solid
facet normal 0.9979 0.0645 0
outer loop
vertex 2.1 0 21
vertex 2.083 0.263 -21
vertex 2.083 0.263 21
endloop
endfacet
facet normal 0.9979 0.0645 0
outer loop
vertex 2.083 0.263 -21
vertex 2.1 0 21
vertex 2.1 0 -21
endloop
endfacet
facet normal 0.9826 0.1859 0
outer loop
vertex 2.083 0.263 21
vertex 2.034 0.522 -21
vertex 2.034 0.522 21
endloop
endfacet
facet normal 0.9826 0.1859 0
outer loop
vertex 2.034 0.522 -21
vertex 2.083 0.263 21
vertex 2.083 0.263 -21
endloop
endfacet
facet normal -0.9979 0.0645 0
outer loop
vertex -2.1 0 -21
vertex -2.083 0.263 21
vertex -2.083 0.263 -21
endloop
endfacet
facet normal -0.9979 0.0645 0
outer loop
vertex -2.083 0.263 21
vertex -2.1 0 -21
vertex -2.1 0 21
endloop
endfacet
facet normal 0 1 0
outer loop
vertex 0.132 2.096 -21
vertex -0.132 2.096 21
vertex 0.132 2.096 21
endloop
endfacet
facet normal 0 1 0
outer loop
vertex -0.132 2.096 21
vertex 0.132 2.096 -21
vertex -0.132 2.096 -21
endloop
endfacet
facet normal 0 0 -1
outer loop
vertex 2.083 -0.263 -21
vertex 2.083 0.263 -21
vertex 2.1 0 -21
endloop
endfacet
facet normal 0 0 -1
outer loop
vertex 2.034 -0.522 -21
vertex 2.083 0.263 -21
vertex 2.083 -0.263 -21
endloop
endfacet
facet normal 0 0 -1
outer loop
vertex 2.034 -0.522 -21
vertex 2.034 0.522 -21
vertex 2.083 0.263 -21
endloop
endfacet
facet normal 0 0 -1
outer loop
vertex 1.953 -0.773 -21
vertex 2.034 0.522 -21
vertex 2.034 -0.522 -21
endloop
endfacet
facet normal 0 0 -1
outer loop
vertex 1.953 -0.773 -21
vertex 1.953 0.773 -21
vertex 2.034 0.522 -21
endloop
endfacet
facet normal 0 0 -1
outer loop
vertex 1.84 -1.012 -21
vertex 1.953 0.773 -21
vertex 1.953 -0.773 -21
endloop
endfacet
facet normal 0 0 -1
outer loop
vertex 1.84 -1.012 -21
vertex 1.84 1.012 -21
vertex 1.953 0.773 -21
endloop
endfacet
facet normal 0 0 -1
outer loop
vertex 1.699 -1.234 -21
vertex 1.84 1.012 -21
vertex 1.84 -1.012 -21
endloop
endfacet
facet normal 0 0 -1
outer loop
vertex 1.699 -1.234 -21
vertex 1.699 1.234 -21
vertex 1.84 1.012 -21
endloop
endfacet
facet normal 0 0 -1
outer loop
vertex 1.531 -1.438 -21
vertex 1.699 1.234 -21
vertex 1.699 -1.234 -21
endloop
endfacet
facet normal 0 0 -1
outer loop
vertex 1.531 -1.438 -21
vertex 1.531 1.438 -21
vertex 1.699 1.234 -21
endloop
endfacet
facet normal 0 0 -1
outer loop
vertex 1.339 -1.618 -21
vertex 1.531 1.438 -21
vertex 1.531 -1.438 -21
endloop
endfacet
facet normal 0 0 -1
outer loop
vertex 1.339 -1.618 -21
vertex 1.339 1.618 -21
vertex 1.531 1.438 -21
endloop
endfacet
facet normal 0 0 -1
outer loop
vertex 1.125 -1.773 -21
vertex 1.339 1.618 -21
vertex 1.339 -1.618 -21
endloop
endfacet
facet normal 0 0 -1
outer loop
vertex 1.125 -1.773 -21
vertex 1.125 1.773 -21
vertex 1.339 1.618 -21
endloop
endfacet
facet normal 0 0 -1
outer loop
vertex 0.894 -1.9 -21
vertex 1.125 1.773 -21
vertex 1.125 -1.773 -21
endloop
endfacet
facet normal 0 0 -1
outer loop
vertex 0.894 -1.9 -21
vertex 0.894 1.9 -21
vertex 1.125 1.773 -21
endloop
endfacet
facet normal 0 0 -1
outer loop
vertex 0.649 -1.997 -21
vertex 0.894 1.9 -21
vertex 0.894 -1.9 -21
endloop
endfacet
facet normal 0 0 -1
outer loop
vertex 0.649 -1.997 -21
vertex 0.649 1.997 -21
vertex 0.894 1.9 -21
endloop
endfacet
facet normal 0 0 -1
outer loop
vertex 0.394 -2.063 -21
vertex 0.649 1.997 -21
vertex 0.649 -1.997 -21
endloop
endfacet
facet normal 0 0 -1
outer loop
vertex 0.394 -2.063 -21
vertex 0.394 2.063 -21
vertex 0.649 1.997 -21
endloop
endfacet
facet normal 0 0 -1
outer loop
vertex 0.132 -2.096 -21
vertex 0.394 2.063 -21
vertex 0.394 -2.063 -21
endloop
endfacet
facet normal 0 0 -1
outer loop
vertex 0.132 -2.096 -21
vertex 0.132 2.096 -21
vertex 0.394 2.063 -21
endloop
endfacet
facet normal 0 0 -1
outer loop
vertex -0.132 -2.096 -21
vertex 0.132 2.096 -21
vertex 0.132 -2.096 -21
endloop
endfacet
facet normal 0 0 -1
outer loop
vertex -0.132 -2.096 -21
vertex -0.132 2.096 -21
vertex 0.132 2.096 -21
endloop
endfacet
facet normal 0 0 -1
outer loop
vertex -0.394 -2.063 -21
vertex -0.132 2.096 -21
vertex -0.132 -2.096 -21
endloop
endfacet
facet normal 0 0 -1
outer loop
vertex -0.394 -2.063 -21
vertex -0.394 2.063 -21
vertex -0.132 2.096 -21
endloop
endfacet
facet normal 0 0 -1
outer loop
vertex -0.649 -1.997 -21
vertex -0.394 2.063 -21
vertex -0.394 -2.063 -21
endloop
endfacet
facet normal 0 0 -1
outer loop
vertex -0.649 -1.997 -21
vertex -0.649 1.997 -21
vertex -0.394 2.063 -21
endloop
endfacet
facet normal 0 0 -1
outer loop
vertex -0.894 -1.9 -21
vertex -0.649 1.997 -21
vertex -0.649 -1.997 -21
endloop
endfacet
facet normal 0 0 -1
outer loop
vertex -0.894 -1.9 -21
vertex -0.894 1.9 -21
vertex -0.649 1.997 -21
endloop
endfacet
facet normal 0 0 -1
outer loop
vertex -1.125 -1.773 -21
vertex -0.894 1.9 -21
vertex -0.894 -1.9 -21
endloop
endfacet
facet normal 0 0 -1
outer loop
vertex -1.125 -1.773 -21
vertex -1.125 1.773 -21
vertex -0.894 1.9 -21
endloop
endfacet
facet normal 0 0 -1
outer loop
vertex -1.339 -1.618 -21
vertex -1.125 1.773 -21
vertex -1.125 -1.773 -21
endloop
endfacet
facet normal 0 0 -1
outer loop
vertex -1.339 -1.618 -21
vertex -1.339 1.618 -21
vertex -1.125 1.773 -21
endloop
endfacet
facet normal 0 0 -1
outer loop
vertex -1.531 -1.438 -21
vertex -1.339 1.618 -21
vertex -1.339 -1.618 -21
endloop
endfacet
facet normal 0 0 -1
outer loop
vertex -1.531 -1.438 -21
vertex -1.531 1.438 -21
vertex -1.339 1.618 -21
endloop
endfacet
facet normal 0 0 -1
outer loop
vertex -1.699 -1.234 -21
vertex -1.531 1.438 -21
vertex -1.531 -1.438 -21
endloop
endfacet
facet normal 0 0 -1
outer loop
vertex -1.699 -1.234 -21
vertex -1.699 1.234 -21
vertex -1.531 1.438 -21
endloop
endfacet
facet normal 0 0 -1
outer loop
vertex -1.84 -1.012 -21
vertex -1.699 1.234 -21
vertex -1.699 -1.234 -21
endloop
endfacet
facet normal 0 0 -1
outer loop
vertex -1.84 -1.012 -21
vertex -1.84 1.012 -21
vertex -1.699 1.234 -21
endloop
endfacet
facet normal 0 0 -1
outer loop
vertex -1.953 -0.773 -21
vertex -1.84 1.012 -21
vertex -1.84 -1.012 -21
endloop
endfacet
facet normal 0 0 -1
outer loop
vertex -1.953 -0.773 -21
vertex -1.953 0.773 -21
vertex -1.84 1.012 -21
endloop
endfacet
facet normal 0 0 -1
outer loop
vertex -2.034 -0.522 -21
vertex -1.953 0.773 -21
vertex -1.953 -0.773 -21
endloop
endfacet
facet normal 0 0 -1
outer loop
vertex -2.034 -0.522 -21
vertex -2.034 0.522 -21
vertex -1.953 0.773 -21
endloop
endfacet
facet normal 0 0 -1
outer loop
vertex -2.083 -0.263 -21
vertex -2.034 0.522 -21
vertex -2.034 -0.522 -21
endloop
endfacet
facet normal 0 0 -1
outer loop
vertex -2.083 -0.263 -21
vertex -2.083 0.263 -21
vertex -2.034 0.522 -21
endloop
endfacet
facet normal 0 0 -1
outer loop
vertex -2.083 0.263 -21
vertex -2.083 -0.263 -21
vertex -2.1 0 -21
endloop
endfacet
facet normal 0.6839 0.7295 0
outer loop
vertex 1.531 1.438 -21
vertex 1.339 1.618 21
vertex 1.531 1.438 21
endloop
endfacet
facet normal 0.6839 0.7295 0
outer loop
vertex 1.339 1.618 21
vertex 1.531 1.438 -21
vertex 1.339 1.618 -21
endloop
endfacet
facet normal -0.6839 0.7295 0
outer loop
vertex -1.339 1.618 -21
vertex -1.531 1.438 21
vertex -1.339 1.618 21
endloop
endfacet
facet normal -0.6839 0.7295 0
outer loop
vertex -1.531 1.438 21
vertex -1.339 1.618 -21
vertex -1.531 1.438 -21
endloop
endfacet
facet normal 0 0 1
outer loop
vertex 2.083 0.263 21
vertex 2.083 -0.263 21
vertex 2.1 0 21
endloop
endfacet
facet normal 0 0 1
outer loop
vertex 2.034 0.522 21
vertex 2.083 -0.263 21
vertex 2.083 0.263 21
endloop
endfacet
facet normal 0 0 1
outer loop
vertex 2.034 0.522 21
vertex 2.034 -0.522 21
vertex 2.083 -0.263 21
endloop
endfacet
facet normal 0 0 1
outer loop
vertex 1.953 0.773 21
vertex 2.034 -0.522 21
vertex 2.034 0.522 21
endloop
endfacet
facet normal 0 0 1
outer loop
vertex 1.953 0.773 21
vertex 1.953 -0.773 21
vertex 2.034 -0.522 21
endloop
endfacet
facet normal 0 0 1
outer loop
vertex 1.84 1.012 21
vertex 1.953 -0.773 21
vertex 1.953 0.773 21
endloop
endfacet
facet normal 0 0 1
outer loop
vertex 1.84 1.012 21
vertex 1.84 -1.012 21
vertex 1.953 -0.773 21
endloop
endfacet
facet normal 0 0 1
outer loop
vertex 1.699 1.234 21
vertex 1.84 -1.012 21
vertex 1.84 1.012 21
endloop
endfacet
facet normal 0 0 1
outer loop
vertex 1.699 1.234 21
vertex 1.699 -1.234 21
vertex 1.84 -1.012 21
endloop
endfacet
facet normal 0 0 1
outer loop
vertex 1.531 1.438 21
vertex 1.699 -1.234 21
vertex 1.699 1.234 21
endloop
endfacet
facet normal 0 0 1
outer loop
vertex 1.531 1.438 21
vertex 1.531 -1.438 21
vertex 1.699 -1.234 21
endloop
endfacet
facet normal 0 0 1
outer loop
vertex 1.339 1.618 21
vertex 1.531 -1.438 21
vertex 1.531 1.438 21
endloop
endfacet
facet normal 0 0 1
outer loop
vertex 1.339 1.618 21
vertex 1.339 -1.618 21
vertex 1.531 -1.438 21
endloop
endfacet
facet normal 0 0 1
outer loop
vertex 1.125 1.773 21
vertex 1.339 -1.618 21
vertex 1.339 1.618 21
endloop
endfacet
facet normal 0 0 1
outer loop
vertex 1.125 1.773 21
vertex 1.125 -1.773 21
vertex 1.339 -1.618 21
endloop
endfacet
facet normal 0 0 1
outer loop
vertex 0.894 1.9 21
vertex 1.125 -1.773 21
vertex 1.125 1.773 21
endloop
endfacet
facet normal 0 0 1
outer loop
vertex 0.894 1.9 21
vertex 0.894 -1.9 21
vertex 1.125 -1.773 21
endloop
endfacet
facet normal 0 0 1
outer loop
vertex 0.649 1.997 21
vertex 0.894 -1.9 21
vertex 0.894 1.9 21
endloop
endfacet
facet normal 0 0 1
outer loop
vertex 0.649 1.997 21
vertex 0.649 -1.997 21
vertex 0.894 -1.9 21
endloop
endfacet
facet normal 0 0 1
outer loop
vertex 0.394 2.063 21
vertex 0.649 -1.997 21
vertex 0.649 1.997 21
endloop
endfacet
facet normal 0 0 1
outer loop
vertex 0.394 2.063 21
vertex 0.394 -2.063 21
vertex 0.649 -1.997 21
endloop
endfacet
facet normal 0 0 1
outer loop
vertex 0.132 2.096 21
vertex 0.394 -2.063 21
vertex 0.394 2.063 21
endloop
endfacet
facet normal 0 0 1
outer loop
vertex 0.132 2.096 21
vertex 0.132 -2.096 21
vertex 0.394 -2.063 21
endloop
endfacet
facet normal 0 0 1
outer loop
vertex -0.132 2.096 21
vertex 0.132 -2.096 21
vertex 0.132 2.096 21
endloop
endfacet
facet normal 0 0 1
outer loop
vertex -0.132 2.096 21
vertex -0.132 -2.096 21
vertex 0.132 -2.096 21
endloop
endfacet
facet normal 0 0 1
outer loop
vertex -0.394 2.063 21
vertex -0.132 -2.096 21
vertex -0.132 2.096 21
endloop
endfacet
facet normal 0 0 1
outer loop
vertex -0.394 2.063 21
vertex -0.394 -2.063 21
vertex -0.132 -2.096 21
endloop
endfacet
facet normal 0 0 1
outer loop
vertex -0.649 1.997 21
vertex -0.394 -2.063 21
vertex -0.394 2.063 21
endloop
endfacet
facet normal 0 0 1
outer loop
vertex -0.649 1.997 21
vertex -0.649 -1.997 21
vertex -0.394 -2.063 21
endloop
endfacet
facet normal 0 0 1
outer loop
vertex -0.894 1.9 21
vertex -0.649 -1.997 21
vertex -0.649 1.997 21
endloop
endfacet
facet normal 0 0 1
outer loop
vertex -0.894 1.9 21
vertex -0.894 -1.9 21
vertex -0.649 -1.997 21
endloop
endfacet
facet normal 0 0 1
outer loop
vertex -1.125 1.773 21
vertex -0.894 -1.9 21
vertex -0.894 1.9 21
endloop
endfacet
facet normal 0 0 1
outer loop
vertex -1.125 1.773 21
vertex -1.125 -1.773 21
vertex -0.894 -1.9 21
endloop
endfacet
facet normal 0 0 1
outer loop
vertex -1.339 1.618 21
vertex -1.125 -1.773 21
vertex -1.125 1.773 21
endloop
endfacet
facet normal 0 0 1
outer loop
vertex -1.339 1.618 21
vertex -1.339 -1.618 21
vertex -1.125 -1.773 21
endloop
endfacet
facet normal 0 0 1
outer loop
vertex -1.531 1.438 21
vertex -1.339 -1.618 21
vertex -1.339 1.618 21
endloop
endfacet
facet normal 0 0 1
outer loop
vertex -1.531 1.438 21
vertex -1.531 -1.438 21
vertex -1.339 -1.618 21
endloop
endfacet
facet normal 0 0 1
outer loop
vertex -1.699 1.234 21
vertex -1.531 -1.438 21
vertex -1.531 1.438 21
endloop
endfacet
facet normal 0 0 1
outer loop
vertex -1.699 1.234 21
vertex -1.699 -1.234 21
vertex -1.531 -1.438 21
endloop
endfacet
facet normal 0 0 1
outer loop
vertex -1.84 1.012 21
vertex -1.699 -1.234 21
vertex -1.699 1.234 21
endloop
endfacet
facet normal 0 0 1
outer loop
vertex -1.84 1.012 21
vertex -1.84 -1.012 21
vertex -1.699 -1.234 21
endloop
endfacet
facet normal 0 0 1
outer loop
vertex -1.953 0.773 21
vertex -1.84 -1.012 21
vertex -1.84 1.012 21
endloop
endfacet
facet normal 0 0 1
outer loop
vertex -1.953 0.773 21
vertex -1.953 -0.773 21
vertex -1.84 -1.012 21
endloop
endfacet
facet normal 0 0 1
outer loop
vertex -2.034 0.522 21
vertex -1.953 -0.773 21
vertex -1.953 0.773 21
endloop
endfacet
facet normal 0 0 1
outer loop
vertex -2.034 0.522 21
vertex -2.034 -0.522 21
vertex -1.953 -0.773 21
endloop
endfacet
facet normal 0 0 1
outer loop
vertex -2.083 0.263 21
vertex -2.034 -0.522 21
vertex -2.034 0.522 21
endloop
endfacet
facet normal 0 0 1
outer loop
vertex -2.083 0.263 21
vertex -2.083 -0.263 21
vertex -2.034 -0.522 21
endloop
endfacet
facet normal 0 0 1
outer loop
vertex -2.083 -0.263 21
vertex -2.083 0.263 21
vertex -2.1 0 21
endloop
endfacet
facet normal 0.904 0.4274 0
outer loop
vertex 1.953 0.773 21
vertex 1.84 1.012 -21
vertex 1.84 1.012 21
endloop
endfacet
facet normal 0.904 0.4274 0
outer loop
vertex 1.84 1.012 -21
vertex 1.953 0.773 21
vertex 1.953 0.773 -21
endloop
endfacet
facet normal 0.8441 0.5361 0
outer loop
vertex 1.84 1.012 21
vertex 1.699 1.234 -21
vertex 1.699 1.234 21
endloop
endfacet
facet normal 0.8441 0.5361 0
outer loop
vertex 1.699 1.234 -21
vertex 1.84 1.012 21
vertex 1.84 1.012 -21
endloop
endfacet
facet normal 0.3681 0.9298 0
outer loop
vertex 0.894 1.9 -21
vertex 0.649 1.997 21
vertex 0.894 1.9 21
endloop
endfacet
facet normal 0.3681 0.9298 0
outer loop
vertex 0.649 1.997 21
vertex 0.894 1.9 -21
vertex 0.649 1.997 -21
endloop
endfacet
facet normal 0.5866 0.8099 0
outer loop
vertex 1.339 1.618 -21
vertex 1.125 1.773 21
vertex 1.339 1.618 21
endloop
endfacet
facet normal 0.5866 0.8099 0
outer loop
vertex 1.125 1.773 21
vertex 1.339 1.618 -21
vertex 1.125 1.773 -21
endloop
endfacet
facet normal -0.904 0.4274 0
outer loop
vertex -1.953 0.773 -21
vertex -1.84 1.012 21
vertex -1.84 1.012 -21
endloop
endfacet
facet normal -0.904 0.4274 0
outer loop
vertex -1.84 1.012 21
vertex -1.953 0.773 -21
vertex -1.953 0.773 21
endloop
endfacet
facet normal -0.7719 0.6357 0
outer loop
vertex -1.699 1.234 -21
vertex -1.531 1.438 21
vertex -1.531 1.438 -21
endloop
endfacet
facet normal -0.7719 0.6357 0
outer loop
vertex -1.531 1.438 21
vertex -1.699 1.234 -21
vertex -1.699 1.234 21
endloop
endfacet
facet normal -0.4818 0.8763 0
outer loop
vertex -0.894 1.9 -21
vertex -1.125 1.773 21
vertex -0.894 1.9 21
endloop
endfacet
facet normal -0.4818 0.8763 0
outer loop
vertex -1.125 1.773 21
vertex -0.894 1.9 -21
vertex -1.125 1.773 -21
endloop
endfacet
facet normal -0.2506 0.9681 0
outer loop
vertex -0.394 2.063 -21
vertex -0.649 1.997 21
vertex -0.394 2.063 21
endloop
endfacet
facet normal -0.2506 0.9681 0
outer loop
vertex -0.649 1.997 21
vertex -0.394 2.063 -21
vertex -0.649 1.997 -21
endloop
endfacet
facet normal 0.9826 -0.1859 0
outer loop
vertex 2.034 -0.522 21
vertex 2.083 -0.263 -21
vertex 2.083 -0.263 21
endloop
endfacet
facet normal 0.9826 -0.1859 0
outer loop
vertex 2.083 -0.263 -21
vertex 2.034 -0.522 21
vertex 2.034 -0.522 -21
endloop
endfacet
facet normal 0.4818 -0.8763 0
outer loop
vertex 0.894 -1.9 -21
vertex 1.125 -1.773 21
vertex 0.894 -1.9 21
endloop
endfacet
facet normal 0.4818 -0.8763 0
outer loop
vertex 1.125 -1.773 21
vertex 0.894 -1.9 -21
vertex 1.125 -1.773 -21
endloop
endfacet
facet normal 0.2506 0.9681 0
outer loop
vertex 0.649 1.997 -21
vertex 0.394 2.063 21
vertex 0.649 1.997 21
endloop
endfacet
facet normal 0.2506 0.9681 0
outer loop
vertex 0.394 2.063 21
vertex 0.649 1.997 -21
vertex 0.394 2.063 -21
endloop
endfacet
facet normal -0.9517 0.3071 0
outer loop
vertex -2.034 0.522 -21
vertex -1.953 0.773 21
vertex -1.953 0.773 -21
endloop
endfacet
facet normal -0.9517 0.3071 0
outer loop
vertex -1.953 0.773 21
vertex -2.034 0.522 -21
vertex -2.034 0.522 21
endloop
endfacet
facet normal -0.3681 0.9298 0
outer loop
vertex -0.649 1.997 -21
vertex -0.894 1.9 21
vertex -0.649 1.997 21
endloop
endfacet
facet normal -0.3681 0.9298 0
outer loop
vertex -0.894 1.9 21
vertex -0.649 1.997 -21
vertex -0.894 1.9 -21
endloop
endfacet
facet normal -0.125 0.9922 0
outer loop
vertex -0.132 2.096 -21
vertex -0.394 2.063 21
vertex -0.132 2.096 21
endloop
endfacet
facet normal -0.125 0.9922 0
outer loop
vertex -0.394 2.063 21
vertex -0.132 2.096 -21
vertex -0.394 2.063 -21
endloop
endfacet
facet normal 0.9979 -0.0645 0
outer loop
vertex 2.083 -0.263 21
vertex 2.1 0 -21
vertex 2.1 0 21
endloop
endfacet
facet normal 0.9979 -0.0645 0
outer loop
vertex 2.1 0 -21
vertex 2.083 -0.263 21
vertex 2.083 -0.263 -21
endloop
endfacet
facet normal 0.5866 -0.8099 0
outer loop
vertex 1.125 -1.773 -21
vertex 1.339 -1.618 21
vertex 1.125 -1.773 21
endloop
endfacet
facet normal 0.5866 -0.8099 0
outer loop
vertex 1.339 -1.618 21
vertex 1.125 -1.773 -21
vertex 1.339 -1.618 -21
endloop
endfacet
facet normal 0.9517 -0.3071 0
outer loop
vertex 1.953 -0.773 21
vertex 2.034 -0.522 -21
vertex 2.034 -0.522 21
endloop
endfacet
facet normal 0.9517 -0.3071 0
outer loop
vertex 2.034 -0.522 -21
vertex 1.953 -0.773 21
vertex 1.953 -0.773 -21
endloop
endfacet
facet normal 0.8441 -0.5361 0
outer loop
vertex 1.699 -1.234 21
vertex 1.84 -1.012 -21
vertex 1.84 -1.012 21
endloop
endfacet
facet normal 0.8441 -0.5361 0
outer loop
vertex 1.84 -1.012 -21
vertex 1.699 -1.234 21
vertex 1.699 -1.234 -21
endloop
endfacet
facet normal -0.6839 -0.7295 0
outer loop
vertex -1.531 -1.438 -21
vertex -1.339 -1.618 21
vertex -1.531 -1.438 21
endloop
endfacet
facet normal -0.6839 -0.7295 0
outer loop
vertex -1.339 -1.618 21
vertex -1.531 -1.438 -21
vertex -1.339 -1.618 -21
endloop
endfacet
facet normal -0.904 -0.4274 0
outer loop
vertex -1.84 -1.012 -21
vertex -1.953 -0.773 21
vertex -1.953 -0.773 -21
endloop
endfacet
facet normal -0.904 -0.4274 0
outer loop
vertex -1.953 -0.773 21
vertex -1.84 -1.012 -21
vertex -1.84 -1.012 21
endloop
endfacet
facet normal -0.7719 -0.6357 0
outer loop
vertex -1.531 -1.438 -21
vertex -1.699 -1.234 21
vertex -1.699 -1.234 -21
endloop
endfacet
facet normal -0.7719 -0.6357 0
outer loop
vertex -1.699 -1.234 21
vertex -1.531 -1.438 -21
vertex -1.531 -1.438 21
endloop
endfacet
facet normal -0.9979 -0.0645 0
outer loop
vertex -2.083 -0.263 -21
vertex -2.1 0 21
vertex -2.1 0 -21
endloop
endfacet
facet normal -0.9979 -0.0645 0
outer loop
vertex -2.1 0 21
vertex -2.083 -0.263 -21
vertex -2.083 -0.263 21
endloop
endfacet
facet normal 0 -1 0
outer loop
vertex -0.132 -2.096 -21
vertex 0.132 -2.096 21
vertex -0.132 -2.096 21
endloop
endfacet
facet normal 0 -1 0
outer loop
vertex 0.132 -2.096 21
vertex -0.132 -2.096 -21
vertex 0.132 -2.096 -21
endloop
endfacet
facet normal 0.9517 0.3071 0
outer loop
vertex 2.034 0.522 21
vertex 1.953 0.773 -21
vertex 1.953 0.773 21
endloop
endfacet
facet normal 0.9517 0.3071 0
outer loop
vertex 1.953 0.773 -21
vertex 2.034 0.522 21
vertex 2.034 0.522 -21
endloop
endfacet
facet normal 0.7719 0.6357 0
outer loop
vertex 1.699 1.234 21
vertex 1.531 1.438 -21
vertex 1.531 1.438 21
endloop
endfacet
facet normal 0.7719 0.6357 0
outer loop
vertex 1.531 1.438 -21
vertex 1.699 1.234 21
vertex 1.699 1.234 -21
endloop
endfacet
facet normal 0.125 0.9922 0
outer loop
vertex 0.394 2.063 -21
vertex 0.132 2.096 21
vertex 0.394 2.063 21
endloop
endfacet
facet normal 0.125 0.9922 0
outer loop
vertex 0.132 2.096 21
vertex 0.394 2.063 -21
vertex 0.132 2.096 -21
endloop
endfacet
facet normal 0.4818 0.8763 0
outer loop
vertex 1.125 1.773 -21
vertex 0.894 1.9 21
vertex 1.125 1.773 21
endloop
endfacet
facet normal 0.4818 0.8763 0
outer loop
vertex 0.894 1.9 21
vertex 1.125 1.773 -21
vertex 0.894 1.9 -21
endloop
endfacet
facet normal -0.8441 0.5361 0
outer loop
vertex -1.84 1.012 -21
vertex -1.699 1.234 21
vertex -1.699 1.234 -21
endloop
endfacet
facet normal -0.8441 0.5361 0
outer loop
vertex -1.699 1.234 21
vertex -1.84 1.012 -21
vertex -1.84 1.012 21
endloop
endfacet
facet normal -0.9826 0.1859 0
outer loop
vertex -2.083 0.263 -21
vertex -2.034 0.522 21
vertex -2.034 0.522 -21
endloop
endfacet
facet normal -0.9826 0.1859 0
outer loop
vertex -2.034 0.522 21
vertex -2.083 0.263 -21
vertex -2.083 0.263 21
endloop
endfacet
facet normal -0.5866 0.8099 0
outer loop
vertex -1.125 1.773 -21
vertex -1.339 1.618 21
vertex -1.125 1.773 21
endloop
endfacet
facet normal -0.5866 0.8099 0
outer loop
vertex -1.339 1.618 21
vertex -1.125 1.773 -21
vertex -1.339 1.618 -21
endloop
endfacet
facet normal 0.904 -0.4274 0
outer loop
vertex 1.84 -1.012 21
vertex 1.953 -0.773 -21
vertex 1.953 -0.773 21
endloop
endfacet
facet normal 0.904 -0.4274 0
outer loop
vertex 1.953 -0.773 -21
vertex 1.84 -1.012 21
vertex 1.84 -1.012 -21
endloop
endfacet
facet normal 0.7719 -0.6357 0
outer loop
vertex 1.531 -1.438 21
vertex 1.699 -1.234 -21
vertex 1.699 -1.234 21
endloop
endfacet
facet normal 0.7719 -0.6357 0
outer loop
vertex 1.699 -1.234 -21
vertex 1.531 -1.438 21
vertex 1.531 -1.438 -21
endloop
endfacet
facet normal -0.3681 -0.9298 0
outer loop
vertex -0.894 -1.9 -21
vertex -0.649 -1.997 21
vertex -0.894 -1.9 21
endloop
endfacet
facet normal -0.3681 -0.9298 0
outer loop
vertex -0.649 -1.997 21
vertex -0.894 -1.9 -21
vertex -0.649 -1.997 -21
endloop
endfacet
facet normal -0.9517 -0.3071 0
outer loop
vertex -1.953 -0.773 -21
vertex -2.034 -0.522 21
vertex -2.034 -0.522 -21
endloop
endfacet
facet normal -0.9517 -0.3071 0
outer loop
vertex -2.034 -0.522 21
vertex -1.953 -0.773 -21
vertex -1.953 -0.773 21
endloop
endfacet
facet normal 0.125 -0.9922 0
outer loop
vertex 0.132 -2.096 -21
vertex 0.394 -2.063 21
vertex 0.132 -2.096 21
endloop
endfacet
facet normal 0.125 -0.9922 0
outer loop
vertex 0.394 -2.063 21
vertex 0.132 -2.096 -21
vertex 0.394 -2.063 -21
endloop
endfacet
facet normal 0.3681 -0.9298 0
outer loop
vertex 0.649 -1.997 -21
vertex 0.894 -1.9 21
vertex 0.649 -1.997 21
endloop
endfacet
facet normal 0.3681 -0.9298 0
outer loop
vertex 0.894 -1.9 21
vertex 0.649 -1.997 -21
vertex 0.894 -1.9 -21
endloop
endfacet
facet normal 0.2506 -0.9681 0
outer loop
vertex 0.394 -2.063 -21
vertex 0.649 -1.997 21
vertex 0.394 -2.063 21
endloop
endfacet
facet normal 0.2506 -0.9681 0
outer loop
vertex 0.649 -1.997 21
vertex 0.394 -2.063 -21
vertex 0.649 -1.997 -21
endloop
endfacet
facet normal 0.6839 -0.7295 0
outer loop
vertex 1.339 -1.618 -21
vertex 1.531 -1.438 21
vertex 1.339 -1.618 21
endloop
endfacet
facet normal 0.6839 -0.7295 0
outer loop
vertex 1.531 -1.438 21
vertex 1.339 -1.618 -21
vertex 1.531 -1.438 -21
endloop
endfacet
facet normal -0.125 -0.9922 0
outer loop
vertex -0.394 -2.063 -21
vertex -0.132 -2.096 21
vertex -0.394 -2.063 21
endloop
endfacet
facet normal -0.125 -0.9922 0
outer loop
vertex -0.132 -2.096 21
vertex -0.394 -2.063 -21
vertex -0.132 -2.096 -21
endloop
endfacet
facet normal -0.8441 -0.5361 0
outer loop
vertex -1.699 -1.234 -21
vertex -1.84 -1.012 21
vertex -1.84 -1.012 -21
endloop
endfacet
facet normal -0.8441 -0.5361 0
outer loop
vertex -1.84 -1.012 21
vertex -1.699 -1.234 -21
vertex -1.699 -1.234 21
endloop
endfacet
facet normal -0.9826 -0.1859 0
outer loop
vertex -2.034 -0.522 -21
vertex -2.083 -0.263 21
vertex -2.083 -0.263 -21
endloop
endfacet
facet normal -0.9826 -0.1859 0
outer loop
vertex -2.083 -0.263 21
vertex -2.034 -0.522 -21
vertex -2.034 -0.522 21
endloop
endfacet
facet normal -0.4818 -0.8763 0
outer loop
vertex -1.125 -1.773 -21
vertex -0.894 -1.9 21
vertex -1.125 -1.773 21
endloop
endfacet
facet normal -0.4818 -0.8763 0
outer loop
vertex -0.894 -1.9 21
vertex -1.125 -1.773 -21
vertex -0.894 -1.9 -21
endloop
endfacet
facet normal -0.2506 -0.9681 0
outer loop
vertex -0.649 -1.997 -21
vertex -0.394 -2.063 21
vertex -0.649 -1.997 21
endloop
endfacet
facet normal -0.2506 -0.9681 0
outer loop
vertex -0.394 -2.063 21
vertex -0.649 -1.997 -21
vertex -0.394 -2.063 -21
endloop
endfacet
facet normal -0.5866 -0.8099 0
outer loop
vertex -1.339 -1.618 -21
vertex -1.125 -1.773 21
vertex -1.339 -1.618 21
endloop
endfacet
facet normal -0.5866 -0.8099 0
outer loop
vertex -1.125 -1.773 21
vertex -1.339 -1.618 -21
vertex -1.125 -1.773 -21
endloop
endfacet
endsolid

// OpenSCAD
$fn = 50;


difference() {
	union() {
		translate(v = [0, 0, -21.0000000000]) {
			cylinder(h = 42, r = 2.1000000000);
		}
	}
	union() {
		translate(v = [0, 0, -100.0000000000]) {
			cylinder(h = 200, r = 0);
		}
	}
}
